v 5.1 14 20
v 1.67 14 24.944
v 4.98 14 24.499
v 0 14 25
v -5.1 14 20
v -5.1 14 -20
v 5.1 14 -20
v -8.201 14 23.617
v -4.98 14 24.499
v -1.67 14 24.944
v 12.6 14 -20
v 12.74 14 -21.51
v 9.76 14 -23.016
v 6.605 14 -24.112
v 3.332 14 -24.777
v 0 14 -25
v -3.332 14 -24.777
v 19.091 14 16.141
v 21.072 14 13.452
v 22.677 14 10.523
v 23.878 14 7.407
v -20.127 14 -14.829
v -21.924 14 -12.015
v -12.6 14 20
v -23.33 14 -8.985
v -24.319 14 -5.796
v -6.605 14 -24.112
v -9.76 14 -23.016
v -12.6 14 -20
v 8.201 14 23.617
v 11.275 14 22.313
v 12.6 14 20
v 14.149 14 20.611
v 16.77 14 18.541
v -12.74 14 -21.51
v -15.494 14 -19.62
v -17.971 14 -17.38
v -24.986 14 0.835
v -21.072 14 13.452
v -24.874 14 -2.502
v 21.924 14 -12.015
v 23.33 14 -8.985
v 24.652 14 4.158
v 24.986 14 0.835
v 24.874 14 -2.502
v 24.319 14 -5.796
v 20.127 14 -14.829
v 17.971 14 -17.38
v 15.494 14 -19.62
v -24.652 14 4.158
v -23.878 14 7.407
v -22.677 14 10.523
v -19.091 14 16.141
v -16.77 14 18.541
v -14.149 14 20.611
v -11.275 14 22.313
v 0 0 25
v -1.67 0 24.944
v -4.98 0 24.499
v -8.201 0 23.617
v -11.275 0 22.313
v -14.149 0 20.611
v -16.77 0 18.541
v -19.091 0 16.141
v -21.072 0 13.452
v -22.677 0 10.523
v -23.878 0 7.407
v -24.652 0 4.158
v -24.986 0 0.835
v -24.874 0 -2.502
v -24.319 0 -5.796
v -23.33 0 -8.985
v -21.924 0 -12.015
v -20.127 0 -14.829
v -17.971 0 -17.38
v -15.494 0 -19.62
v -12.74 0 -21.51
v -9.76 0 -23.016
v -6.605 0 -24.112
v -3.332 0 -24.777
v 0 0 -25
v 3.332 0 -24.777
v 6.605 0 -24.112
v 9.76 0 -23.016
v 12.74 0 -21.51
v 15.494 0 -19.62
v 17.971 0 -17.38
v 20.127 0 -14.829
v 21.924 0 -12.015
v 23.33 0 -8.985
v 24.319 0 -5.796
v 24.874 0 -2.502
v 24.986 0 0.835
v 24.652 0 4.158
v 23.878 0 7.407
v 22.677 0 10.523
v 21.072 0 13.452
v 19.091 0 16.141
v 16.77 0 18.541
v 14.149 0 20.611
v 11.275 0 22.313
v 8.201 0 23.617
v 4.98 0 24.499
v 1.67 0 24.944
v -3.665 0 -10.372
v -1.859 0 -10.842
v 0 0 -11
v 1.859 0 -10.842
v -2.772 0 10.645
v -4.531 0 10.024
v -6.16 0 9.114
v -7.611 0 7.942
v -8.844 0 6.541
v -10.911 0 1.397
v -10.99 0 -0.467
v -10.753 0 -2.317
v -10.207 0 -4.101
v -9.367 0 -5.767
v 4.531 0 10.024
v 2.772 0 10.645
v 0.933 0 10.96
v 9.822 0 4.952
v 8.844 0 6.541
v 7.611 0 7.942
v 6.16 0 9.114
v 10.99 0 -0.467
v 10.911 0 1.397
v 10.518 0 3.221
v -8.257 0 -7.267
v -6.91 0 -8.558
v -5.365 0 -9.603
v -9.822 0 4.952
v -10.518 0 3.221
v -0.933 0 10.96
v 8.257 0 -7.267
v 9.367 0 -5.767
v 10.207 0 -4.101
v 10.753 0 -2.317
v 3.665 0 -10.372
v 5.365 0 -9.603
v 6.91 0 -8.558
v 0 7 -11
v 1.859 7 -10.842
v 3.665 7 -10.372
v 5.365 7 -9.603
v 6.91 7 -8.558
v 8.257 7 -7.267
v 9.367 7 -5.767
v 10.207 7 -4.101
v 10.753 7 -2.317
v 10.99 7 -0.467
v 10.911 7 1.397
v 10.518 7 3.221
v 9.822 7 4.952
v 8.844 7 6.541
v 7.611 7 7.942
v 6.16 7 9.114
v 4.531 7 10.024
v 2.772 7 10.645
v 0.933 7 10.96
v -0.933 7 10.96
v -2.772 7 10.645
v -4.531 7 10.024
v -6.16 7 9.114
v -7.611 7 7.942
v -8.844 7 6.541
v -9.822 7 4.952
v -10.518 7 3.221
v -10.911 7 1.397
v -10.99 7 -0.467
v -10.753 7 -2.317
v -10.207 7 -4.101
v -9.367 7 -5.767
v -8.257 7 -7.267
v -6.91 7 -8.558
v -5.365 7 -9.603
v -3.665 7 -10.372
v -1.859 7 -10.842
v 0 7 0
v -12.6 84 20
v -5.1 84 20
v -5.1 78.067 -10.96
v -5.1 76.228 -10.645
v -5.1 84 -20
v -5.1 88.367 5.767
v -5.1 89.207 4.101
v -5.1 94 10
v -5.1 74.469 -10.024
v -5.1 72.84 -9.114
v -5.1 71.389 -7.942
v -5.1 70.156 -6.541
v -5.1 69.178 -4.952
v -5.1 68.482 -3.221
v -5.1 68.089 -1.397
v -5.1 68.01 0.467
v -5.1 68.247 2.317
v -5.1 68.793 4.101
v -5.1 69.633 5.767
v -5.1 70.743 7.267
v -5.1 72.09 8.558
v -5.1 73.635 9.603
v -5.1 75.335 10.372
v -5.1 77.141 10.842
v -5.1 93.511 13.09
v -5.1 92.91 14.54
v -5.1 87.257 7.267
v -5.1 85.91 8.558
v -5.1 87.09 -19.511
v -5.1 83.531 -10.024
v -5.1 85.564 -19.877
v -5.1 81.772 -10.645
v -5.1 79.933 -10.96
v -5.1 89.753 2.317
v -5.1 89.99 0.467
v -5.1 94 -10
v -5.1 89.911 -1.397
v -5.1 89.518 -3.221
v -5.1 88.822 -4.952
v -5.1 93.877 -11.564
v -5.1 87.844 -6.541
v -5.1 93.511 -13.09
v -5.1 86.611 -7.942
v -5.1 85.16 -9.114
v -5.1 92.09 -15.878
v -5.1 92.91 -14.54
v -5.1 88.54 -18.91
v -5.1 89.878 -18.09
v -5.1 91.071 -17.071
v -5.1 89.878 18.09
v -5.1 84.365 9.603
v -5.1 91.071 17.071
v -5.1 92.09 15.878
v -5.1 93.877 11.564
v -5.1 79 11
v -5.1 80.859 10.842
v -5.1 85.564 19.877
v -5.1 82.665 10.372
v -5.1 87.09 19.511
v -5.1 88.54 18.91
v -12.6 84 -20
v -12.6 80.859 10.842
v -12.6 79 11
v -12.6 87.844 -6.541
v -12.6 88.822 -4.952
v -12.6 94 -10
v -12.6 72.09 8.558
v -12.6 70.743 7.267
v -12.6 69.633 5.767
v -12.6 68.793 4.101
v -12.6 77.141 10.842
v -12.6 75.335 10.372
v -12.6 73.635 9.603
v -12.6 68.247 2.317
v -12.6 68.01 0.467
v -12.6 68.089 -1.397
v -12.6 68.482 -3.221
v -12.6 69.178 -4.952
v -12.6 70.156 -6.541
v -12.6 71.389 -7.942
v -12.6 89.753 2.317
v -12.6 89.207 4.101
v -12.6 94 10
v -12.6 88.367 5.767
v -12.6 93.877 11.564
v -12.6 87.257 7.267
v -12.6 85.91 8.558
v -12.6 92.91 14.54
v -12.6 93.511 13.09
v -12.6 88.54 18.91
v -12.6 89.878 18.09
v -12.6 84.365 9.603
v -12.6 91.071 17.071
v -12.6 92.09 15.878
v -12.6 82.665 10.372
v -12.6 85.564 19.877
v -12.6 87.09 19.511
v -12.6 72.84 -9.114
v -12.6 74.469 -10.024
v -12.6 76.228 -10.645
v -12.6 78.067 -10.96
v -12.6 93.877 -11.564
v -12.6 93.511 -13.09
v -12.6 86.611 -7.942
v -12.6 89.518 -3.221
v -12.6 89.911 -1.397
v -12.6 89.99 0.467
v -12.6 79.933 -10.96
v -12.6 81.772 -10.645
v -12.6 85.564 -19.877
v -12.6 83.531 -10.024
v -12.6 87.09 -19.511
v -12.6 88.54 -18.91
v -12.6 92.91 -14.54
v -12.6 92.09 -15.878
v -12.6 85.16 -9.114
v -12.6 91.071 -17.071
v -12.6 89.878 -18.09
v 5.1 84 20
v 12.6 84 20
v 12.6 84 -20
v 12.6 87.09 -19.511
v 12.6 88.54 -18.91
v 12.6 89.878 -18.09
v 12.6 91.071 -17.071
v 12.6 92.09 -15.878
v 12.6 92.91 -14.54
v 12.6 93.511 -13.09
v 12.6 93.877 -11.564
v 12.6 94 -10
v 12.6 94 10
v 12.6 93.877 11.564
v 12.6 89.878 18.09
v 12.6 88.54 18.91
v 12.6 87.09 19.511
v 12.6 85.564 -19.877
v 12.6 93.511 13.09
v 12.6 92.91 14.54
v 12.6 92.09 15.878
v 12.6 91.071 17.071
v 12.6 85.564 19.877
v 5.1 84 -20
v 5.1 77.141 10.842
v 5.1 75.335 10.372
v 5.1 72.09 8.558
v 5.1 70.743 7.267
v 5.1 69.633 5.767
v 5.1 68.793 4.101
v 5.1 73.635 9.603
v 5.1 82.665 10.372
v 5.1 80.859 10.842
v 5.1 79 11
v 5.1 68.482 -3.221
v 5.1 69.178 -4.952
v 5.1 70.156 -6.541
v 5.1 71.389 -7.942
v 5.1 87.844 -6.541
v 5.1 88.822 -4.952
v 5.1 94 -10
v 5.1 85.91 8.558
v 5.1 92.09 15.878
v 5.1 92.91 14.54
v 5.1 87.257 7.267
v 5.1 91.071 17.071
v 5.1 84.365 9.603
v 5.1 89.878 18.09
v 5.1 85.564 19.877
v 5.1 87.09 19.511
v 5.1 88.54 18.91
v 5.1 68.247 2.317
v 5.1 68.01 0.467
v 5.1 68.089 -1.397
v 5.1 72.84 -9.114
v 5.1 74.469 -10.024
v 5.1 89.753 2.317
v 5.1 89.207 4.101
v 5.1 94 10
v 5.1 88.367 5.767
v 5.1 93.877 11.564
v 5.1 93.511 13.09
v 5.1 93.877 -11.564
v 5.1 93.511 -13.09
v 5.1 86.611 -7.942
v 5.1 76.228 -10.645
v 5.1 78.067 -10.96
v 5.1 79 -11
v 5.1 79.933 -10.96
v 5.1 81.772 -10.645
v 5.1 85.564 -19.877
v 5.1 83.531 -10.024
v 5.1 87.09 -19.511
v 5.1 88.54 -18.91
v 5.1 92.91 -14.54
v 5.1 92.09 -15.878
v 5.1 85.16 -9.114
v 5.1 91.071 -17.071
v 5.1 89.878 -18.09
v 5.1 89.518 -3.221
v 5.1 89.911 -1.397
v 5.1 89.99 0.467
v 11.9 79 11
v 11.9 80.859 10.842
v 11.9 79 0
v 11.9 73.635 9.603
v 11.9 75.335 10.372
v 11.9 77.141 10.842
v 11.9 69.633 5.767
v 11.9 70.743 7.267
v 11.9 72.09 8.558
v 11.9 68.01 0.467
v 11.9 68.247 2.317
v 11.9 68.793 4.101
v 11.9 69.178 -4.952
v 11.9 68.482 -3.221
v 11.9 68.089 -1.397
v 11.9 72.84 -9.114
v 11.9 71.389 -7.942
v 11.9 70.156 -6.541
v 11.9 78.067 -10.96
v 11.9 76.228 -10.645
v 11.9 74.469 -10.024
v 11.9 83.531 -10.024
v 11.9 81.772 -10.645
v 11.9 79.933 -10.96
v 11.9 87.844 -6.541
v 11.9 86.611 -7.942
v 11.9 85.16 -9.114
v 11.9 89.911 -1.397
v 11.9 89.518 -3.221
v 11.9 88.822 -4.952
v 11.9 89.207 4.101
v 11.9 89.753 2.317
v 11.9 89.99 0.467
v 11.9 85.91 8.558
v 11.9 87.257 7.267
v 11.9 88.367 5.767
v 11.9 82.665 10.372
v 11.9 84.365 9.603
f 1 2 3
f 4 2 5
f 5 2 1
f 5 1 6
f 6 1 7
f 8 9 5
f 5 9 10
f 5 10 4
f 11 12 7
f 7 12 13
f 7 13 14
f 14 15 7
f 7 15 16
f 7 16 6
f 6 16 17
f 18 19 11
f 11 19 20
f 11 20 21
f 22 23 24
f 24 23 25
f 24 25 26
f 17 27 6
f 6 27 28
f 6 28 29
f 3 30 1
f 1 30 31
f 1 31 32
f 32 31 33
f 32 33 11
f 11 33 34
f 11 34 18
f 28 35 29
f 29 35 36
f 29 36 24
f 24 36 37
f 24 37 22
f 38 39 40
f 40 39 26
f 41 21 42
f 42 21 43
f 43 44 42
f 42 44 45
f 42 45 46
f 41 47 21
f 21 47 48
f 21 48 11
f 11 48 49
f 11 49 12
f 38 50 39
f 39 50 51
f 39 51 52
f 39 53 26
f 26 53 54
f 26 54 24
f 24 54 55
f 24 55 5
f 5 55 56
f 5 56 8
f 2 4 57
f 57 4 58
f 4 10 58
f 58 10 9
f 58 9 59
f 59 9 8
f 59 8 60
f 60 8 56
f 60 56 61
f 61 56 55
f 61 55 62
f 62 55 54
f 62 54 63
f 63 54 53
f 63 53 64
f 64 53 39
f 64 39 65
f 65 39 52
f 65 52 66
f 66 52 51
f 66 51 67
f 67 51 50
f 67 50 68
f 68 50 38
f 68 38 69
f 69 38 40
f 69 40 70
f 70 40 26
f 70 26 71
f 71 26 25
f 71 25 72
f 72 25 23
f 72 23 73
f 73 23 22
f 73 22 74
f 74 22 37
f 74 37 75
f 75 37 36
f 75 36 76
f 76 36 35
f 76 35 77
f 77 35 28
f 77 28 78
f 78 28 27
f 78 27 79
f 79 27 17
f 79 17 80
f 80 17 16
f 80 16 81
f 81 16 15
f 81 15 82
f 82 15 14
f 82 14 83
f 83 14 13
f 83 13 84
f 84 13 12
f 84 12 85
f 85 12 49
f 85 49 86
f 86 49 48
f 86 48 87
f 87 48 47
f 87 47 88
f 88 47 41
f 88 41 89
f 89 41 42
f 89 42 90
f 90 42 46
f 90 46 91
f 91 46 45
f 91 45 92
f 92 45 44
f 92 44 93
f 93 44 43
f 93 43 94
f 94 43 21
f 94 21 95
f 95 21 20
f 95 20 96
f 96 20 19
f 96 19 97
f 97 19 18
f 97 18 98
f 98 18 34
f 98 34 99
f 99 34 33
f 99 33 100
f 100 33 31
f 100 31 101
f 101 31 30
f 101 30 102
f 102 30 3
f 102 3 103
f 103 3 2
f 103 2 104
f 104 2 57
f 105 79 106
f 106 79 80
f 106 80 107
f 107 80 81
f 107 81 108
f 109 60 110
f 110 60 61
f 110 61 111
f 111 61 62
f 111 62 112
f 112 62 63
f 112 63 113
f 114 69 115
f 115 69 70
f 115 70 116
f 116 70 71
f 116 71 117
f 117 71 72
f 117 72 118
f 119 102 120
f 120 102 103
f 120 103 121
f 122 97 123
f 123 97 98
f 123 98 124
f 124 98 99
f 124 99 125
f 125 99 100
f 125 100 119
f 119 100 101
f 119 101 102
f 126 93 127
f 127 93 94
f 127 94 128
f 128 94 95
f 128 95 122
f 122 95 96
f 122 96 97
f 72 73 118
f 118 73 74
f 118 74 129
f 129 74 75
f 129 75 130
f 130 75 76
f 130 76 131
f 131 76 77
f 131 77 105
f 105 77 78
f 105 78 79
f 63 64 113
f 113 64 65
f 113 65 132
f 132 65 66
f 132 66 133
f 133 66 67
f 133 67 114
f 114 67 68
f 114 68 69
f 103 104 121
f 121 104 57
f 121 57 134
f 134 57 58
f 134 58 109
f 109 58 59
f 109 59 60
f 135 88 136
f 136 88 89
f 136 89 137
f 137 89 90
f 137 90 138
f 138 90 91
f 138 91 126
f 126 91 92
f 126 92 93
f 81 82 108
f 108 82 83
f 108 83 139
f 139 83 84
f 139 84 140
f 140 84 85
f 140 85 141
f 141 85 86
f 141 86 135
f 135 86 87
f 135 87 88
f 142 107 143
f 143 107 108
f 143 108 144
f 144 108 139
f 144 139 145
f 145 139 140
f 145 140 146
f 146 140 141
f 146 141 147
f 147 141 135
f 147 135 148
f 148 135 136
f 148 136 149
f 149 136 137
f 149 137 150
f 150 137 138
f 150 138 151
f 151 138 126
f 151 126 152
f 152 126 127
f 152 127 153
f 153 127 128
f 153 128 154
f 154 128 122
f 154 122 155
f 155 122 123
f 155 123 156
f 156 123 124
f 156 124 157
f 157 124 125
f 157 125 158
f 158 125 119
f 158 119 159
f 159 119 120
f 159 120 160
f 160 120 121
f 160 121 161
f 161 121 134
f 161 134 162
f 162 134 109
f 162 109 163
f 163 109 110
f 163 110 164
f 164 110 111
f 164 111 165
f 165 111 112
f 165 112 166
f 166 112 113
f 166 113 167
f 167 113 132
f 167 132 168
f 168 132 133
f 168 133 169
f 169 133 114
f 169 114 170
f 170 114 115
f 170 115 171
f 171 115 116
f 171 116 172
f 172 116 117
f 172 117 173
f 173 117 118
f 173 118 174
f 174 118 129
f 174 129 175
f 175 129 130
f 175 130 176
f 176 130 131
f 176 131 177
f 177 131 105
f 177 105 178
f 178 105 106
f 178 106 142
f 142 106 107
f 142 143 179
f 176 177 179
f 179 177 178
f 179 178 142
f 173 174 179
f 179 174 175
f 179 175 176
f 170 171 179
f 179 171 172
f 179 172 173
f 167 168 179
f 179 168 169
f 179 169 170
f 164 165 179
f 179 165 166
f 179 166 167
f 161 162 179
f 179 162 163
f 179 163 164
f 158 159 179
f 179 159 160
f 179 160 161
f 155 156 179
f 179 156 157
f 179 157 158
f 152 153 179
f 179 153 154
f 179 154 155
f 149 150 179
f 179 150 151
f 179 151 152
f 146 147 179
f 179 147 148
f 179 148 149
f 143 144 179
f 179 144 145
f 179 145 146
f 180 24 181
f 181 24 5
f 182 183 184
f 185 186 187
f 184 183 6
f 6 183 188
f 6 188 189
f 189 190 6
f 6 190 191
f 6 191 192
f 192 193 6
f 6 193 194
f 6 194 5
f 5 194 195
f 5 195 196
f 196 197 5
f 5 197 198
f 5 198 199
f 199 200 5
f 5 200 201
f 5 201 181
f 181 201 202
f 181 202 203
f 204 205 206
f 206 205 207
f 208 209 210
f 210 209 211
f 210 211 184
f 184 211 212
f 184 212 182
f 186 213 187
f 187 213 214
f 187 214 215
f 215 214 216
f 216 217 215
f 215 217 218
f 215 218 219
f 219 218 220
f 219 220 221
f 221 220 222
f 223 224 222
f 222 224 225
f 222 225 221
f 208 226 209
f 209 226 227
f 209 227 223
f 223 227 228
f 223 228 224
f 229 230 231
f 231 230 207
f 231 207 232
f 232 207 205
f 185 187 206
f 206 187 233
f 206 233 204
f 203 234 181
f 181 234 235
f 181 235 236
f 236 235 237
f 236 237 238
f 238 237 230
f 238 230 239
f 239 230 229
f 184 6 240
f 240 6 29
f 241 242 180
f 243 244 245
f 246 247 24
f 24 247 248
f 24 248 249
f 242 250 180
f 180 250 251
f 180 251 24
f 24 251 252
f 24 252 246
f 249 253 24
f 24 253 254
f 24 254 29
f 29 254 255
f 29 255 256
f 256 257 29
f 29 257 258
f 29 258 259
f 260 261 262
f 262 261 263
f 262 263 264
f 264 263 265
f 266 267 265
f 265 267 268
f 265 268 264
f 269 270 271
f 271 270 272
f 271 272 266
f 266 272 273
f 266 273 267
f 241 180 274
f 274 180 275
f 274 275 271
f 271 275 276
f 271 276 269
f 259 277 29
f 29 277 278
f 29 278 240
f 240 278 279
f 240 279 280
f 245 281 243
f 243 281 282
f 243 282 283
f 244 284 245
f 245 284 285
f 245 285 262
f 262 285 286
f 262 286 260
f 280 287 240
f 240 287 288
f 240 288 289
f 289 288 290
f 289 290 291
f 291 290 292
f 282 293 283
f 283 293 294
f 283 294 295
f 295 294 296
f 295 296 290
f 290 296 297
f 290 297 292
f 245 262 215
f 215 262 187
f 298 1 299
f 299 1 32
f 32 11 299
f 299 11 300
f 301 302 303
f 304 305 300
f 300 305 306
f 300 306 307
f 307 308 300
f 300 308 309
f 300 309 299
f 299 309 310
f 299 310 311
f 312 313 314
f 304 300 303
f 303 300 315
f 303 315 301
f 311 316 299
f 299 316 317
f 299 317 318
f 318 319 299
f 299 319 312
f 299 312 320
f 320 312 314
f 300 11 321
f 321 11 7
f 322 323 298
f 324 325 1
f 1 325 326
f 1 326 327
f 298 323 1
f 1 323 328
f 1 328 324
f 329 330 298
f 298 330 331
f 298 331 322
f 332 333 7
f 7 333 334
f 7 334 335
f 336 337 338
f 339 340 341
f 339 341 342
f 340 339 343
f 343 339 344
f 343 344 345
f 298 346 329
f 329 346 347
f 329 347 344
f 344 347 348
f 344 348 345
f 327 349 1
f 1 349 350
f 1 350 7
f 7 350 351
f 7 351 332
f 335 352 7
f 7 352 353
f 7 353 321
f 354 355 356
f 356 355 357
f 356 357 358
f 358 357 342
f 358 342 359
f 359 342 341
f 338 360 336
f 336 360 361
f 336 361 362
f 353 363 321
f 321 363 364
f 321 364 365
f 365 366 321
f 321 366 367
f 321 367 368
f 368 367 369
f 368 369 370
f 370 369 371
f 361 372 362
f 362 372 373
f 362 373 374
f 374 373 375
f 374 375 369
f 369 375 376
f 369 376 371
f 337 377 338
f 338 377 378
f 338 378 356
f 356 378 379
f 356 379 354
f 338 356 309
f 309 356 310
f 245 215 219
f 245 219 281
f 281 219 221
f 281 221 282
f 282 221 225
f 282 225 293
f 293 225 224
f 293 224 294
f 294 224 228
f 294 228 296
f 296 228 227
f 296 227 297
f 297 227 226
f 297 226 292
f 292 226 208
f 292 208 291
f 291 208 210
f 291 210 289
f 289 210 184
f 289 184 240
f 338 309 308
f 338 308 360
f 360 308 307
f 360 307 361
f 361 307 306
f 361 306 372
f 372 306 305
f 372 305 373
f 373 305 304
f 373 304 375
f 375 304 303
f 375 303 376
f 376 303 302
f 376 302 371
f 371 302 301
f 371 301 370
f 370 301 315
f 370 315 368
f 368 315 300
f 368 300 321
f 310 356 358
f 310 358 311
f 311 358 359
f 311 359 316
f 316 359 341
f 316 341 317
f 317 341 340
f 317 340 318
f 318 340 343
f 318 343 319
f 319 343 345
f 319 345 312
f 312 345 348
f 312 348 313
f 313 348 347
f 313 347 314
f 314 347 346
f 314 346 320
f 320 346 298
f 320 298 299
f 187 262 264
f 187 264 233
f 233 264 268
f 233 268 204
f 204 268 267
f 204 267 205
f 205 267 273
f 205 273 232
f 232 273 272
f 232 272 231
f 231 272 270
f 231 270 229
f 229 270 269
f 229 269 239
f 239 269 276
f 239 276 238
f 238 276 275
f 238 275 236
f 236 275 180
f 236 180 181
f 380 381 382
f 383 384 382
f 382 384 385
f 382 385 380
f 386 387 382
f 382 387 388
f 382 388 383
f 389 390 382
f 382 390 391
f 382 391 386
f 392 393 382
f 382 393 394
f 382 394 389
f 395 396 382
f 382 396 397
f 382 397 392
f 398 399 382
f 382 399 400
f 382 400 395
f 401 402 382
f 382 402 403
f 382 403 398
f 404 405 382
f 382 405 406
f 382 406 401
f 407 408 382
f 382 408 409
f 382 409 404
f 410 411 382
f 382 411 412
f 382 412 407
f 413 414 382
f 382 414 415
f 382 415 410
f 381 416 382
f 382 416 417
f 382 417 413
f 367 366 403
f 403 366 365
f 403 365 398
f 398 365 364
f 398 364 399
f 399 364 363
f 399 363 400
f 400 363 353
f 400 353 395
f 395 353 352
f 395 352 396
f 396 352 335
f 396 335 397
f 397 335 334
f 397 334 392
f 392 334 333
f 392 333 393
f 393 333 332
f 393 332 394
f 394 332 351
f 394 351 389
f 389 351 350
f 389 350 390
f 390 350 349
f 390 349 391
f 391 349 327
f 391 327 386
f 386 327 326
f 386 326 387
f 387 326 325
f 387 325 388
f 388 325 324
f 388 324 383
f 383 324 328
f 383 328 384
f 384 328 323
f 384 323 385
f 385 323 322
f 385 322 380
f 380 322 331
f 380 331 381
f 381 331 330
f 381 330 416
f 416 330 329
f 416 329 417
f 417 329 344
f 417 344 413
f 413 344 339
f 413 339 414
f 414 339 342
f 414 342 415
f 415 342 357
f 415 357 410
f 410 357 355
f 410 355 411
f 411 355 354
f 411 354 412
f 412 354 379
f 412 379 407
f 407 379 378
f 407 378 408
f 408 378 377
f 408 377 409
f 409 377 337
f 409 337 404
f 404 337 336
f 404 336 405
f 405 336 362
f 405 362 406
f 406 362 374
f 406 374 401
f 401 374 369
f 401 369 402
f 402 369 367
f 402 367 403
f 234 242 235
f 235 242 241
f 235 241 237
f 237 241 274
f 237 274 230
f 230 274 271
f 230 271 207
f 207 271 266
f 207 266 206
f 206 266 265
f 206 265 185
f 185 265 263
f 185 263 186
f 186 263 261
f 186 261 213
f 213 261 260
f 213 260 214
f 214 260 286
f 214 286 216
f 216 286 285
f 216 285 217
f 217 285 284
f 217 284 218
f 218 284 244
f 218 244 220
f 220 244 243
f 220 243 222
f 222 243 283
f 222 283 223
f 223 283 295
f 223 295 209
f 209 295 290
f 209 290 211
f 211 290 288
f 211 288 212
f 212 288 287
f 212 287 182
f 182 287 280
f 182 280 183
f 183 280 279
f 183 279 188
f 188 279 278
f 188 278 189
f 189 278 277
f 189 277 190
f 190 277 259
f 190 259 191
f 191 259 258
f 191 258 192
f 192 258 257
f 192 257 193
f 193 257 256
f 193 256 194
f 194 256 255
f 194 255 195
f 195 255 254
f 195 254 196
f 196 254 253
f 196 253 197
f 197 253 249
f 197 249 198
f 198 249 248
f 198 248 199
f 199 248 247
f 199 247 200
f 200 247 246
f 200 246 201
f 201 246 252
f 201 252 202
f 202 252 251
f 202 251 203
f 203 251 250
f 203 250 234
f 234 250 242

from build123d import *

# Parameters (mm, degrees)
SKETCH1_R           = 25
BOSS_EXTRUDE1_DEPTH = 14
SKETCH2_R           = 11
CUT_EXTRUDE1_DEPTH  = 7
SKETCH5_W           = 7.5
SKETCH5_H           = 40
BOSS_EXTRUDE2_DEPTH = 80
FILLET1_R           = 10
SKETCH7_R           = 11
CUT_EXTRUDE3_DEPTH  = 24.5


with BuildPart() as part:
    # Sketch1 → Boss-Extrude1 (new body)
    with BuildSketch(Plane(origin=(0, 0, 0), x_dir=(1, 0, 0), z_dir=(0, 1, 0))):
        with Locations(Location((0, 0, 0), (0, 0, 90))):
            Circle(SKETCH1_R)
    extrude(amount=BOSS_EXTRUDE1_DEPTH)

    # Sketch2 → Cut-Extrude1 (cut)
    with BuildSketch(Plane.XZ):
        with Locations(Location((0, 0, 0), (0, 0, 270))):
            Circle(SKETCH2_R)
    extrude(amount=-CUT_EXTRUDE1_DEPTH, mode=Mode.SUBTRACT)

    # Sketch5 → Boss-Extrude2 (add)
    with BuildSketch(Plane(origin=(0, 14, 0), x_dir=(1, 0, 0), z_dir=(0, 1, 0))):
        with Locations((-8.85, 0)):
            Rectangle(SKETCH5_W, SKETCH5_H)
        with Locations((8.85, 0)):
            Rectangle(SKETCH5_W, SKETCH5_H)
    extrude(amount=BOSS_EXTRUDE2_DEPTH)

    # Fillet1
    fillet1_edges = [part.edges().sort_by_distance(p)[0] for p in [
        (-8.85, 94, 20),
        (-8.85, 94, -20),
        (8.85, 94, 20),
        (8.85, 94, -20),
    ]]
    fillet(fillet1_edges, radius=FILLET1_R)

    # Sketch7 → Cut-Extrude3 (cut)
    with BuildSketch(Plane.ZY.offset(12.6)):
        with Locations((0, 79)):
            Circle(SKETCH7_R)
    extrude(amount=-CUT_EXTRUDE3_DEPTH, mode=Mode.SUBTRACT)


solid = part.part
